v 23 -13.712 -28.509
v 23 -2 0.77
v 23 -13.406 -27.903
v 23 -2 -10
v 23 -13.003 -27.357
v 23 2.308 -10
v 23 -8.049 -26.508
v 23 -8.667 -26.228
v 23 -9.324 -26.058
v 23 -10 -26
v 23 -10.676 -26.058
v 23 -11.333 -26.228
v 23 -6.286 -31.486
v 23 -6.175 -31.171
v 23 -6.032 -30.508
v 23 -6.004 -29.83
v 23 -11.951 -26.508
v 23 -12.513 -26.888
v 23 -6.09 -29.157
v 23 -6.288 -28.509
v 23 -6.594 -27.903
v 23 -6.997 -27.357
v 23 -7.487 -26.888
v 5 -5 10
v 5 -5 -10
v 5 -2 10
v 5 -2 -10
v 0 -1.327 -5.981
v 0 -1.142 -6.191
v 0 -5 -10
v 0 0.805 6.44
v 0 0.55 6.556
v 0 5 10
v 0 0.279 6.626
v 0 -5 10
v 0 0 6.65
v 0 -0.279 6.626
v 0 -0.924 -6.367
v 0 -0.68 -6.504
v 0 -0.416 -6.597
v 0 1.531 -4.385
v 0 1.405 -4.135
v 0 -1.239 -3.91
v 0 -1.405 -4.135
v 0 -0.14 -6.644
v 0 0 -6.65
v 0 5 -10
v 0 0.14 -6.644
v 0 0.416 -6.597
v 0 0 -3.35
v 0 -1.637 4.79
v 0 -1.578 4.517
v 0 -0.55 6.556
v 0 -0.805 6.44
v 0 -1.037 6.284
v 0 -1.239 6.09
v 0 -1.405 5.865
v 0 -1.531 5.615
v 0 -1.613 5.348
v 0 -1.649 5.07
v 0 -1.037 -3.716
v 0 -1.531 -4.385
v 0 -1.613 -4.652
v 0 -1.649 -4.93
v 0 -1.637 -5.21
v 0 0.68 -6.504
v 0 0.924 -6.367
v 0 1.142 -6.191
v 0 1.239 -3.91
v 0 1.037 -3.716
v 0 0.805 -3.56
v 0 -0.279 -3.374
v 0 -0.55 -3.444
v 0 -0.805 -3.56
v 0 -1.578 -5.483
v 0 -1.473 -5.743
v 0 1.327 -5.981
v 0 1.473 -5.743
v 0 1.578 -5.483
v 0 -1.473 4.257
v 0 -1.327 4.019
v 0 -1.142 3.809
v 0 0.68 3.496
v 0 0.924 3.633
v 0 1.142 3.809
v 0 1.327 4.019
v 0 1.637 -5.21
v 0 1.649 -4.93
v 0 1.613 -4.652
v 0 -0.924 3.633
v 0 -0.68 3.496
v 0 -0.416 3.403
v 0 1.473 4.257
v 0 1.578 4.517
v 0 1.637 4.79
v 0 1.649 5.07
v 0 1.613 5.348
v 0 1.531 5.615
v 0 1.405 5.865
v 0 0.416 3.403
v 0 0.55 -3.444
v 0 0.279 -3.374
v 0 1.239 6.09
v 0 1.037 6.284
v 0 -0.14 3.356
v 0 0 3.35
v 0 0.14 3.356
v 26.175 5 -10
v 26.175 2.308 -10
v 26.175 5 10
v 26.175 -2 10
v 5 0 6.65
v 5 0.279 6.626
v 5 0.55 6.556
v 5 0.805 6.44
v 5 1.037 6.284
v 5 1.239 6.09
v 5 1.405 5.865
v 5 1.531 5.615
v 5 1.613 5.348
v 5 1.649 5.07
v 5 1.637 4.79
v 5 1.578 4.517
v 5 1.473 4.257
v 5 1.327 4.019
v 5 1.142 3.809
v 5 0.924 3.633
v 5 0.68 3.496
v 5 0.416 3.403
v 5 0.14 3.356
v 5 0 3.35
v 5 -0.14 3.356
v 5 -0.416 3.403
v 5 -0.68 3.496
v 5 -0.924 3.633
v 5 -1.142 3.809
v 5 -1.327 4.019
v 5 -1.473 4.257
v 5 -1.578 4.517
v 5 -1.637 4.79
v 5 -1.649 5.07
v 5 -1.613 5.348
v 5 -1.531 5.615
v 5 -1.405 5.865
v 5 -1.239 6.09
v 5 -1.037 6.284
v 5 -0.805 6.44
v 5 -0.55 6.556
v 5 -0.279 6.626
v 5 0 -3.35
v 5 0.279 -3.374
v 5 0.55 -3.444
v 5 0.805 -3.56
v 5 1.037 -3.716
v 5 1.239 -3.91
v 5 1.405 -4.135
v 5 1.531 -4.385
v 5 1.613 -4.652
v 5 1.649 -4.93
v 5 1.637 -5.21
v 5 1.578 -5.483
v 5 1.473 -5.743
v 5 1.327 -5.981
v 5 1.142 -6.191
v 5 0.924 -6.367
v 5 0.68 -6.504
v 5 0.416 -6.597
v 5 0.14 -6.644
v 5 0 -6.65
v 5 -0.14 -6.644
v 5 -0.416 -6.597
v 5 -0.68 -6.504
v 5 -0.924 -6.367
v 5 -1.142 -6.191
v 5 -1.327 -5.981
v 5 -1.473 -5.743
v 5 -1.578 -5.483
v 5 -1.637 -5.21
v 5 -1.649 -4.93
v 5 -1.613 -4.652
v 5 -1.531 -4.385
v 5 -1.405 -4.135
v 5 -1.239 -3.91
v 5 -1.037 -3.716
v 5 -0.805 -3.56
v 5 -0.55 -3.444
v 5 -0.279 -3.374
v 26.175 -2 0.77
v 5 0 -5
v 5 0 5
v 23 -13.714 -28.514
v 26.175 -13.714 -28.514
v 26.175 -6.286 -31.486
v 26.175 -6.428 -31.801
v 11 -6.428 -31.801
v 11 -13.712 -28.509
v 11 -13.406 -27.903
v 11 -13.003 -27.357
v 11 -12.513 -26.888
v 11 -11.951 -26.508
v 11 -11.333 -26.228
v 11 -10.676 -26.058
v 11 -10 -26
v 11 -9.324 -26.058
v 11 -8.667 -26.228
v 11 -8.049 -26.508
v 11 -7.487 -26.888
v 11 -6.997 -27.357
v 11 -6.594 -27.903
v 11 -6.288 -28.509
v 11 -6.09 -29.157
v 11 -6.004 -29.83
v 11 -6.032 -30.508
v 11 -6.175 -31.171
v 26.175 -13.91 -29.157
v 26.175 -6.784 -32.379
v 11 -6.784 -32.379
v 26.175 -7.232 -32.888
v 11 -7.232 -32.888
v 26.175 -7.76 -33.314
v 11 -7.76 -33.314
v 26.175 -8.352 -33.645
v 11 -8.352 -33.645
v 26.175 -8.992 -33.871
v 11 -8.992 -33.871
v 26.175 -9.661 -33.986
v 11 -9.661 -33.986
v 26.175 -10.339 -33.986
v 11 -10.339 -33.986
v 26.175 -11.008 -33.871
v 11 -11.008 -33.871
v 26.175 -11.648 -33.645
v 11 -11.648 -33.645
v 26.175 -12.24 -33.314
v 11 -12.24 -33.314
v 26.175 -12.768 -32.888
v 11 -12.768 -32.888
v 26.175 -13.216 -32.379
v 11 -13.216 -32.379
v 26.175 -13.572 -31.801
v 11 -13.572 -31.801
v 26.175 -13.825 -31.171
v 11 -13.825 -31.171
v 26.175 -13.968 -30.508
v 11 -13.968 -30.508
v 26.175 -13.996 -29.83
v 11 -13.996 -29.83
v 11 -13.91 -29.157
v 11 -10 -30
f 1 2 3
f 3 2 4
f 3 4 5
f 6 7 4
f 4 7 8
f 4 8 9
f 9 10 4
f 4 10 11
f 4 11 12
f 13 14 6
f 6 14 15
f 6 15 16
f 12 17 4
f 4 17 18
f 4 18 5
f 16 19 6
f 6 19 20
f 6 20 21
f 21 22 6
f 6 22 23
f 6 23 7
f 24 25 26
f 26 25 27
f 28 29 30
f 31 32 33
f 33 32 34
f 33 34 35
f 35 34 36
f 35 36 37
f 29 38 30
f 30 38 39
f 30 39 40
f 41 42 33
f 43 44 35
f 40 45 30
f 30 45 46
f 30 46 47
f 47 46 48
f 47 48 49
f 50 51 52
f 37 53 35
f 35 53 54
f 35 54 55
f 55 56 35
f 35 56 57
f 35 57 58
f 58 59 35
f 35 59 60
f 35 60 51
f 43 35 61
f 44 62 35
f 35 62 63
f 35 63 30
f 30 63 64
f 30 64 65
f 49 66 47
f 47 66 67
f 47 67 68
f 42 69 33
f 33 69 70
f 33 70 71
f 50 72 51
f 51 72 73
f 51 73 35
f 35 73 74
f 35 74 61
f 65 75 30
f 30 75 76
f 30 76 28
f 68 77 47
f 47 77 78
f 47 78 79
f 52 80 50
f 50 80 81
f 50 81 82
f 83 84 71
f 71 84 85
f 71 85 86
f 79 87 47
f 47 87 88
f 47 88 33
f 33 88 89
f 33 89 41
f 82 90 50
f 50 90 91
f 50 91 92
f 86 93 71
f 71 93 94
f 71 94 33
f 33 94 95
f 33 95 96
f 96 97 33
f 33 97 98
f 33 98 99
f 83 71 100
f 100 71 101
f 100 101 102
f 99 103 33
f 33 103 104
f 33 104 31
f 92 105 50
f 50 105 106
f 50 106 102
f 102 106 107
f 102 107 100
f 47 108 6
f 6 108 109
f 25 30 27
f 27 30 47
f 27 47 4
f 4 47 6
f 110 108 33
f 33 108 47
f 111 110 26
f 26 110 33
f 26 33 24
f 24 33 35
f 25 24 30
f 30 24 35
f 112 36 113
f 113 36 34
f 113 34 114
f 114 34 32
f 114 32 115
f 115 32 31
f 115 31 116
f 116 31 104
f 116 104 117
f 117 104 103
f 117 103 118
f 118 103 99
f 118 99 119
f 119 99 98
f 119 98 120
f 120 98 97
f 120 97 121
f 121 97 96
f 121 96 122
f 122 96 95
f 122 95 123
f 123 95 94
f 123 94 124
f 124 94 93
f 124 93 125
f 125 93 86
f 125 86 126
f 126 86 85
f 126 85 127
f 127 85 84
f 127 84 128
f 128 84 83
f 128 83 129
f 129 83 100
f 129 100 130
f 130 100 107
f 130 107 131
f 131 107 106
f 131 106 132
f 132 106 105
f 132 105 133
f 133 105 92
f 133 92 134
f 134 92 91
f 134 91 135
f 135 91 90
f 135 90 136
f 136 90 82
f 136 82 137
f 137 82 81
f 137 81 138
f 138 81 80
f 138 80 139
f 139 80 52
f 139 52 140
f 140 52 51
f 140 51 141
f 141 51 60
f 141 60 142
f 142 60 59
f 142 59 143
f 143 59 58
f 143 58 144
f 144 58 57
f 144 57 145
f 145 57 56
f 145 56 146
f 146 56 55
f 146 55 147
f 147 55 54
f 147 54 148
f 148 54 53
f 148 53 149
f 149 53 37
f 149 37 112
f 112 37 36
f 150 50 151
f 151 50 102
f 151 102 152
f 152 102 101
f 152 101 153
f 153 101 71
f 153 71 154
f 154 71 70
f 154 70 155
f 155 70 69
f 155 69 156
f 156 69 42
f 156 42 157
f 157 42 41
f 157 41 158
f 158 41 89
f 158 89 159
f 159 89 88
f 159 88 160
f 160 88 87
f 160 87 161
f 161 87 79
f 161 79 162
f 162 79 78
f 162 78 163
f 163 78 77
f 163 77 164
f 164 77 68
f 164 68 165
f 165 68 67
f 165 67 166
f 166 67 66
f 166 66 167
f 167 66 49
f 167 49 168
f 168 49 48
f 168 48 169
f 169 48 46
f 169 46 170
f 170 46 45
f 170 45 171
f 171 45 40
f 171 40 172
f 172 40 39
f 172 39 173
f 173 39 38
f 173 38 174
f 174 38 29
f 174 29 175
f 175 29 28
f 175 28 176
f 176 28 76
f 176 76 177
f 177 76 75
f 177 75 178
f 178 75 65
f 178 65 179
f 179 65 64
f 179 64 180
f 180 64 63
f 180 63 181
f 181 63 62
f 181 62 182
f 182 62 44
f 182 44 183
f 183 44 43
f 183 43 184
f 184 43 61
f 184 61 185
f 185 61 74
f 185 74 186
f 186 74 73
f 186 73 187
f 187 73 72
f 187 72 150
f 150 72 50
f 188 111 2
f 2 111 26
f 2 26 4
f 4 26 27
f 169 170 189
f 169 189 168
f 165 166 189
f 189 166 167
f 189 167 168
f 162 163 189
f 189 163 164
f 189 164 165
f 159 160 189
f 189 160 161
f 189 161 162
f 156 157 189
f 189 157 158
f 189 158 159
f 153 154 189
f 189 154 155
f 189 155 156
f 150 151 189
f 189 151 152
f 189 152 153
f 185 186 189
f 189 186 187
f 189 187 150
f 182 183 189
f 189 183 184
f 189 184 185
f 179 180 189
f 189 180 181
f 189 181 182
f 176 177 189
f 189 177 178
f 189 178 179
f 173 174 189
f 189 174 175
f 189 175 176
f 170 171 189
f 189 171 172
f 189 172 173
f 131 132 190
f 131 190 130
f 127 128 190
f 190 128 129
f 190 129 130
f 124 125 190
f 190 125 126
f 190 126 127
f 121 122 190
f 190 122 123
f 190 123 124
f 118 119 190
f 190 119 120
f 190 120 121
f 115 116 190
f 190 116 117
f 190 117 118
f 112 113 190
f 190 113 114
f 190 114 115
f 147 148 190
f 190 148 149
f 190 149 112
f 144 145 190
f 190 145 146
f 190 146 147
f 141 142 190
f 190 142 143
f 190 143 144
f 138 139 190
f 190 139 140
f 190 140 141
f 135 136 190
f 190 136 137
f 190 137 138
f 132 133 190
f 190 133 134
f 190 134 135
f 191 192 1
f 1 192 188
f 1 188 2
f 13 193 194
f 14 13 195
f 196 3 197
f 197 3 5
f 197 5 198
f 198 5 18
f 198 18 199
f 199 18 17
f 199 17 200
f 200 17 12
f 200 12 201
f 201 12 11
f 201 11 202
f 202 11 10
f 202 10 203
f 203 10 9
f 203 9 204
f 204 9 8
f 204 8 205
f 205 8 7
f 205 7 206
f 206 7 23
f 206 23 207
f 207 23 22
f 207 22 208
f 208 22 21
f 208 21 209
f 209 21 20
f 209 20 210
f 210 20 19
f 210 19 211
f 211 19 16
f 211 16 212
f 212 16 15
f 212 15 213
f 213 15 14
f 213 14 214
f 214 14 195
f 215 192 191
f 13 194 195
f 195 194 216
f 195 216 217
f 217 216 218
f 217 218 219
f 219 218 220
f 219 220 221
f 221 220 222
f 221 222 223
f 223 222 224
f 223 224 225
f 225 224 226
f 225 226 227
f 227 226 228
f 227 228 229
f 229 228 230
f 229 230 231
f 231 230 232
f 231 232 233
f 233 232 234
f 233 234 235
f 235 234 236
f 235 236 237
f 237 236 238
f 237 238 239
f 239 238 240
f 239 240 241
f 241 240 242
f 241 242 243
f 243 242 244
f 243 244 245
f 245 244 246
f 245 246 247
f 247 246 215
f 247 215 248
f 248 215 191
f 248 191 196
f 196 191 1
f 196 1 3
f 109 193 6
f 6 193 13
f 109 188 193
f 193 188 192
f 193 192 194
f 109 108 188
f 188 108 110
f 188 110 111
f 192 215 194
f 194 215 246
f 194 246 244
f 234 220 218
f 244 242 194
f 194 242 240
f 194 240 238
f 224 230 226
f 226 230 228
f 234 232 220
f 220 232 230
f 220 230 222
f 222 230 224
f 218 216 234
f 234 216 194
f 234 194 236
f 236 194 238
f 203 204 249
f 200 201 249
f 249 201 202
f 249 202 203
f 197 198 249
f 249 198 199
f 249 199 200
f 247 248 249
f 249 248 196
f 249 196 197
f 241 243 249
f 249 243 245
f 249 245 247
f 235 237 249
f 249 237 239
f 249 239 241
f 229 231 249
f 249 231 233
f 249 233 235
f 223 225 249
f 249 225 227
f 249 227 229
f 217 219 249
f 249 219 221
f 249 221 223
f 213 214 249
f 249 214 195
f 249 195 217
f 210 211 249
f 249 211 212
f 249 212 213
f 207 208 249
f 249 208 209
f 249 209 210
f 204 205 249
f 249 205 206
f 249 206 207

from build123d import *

# Parameters (mm, degrees)
SKETCH1_W           = 20
SKETCH1_H           = 10
SKETCH1_R           = 1.65
BOSS_EXTRUDE1_DEPTH = 5
SKETCH2_W           = 20
SKETCH2_H           = 7
BOSS_EXTRUDE2_DEPTH = 18
BOSS_EXTRUDE3_DEPTH = 3.175
BOSS_EXTRUDE4_START = 12
SKETCH4_R           = 4
BOSS_EXTRUDE4_DEPTH = 12


with BuildPart() as part:
    # Sketch1 → Boss-Extrude1 (new body)
    with BuildSketch(Plane(origin=(0, 0, 0), x_dir=(0, 0, -1), z_dir=(1, 0, 0))):
        Rectangle(SKETCH1_W, SKETCH1_H)
        with Locations((-5, 0)):
            Circle(SKETCH1_R, mode=Mode.SUBTRACT)
        with Locations((5, 0)):
            Circle(SKETCH1_R, mode=Mode.SUBTRACT)
    extrude(amount=BOSS_EXTRUDE1_DEPTH)

    # Sketch2 → Boss-Extrude2 (add)
    with BuildSketch(Plane(origin=(5, 0, 0), x_dir=(0, 0, -1), z_dir=(1, 0, 0))):
        with Locations((0, 1.5)):
            Rectangle(SKETCH2_W, SKETCH2_H)
    extrude(amount=BOSS_EXTRUDE2_DEPTH)

    # Sketch3 → Boss-Extrude3 (add)
    with BuildSketch(Plane(origin=(23, 0, 0), x_dir=(0, 0, -1), z_dir=(1, 0, 0))):
        with BuildLine():
            Line((10, 5), (-10, 5))
            Line((-10, 5), (-10, -2))
            Line((-10, -2), (-0.770329614, -2))
            Line((-0.770329614, -2), (6, -2))
            ThreePointArc((6, -2), (7.171572875, 0.828427125), (10, 2))
            Line((10, 2), (10, 2.308131846))
            Line((10, 2.308131846), (10, 5))
        make_face()
        with BuildLine():
            Line((10, -2), (10, 2))
            ThreePointArc((10, 2), (7.171572875, 0.828427125), (6, -2))
            Line((6, -2), (10, -2))
        make_face()
        with BuildLine():
            ThreePointArc((11.485562705, 1.713906764), (10.756430085, 1.927825547), (10, 2))
            Line((10, 2), (10, -2))
            Line((10, -2), (6, -2))
            ThreePointArc((6, -2), (6.687731078, -4.242515237), (8.514437295, -5.713906764))
            Line((8.514437295, -5.713906764), (28.514437295, -13.713906764))
            ThreePointArc((28.514437295, -13.713906764), (33.713906764, -11.485562705), (31.485562705, -6.286093236))
            Line((31.485562705, -6.286093236), (11.485562705, 1.713906764))
        make_face()
        with BuildLine():
            Line((6, -2), (-0.770329614, -2))
            Line((-0.770329614, -2), (8.514437295, -5.713906764))
            ThreePointArc((8.514437295, -5.713906764), (6.687731078, -4.242515237), (6, -2))
        make_face()
        with BuildLine():
            Line((11.485562705, 1.713906764), (10, 2.308131846))
            Line((10, 2.308131846), (10, 2))
            ThreePointArc((10, 2), (10.756430085, 1.927825547), (11.485562705, 1.713906764))
        make_face()
    extrude(amount=BOSS_EXTRUDE3_DEPTH)

    # Sketch4 → Boss-Extrude4 (add)
    with BuildSketch(Plane.ZY.offset(-23).offset(BOSS_EXTRUDE4_START)):
        with Locations((-30, -10)):
            Circle(SKETCH4_R)
    extrude(amount=-BOSS_EXTRUDE4_DEPTH)


solid = part.part
